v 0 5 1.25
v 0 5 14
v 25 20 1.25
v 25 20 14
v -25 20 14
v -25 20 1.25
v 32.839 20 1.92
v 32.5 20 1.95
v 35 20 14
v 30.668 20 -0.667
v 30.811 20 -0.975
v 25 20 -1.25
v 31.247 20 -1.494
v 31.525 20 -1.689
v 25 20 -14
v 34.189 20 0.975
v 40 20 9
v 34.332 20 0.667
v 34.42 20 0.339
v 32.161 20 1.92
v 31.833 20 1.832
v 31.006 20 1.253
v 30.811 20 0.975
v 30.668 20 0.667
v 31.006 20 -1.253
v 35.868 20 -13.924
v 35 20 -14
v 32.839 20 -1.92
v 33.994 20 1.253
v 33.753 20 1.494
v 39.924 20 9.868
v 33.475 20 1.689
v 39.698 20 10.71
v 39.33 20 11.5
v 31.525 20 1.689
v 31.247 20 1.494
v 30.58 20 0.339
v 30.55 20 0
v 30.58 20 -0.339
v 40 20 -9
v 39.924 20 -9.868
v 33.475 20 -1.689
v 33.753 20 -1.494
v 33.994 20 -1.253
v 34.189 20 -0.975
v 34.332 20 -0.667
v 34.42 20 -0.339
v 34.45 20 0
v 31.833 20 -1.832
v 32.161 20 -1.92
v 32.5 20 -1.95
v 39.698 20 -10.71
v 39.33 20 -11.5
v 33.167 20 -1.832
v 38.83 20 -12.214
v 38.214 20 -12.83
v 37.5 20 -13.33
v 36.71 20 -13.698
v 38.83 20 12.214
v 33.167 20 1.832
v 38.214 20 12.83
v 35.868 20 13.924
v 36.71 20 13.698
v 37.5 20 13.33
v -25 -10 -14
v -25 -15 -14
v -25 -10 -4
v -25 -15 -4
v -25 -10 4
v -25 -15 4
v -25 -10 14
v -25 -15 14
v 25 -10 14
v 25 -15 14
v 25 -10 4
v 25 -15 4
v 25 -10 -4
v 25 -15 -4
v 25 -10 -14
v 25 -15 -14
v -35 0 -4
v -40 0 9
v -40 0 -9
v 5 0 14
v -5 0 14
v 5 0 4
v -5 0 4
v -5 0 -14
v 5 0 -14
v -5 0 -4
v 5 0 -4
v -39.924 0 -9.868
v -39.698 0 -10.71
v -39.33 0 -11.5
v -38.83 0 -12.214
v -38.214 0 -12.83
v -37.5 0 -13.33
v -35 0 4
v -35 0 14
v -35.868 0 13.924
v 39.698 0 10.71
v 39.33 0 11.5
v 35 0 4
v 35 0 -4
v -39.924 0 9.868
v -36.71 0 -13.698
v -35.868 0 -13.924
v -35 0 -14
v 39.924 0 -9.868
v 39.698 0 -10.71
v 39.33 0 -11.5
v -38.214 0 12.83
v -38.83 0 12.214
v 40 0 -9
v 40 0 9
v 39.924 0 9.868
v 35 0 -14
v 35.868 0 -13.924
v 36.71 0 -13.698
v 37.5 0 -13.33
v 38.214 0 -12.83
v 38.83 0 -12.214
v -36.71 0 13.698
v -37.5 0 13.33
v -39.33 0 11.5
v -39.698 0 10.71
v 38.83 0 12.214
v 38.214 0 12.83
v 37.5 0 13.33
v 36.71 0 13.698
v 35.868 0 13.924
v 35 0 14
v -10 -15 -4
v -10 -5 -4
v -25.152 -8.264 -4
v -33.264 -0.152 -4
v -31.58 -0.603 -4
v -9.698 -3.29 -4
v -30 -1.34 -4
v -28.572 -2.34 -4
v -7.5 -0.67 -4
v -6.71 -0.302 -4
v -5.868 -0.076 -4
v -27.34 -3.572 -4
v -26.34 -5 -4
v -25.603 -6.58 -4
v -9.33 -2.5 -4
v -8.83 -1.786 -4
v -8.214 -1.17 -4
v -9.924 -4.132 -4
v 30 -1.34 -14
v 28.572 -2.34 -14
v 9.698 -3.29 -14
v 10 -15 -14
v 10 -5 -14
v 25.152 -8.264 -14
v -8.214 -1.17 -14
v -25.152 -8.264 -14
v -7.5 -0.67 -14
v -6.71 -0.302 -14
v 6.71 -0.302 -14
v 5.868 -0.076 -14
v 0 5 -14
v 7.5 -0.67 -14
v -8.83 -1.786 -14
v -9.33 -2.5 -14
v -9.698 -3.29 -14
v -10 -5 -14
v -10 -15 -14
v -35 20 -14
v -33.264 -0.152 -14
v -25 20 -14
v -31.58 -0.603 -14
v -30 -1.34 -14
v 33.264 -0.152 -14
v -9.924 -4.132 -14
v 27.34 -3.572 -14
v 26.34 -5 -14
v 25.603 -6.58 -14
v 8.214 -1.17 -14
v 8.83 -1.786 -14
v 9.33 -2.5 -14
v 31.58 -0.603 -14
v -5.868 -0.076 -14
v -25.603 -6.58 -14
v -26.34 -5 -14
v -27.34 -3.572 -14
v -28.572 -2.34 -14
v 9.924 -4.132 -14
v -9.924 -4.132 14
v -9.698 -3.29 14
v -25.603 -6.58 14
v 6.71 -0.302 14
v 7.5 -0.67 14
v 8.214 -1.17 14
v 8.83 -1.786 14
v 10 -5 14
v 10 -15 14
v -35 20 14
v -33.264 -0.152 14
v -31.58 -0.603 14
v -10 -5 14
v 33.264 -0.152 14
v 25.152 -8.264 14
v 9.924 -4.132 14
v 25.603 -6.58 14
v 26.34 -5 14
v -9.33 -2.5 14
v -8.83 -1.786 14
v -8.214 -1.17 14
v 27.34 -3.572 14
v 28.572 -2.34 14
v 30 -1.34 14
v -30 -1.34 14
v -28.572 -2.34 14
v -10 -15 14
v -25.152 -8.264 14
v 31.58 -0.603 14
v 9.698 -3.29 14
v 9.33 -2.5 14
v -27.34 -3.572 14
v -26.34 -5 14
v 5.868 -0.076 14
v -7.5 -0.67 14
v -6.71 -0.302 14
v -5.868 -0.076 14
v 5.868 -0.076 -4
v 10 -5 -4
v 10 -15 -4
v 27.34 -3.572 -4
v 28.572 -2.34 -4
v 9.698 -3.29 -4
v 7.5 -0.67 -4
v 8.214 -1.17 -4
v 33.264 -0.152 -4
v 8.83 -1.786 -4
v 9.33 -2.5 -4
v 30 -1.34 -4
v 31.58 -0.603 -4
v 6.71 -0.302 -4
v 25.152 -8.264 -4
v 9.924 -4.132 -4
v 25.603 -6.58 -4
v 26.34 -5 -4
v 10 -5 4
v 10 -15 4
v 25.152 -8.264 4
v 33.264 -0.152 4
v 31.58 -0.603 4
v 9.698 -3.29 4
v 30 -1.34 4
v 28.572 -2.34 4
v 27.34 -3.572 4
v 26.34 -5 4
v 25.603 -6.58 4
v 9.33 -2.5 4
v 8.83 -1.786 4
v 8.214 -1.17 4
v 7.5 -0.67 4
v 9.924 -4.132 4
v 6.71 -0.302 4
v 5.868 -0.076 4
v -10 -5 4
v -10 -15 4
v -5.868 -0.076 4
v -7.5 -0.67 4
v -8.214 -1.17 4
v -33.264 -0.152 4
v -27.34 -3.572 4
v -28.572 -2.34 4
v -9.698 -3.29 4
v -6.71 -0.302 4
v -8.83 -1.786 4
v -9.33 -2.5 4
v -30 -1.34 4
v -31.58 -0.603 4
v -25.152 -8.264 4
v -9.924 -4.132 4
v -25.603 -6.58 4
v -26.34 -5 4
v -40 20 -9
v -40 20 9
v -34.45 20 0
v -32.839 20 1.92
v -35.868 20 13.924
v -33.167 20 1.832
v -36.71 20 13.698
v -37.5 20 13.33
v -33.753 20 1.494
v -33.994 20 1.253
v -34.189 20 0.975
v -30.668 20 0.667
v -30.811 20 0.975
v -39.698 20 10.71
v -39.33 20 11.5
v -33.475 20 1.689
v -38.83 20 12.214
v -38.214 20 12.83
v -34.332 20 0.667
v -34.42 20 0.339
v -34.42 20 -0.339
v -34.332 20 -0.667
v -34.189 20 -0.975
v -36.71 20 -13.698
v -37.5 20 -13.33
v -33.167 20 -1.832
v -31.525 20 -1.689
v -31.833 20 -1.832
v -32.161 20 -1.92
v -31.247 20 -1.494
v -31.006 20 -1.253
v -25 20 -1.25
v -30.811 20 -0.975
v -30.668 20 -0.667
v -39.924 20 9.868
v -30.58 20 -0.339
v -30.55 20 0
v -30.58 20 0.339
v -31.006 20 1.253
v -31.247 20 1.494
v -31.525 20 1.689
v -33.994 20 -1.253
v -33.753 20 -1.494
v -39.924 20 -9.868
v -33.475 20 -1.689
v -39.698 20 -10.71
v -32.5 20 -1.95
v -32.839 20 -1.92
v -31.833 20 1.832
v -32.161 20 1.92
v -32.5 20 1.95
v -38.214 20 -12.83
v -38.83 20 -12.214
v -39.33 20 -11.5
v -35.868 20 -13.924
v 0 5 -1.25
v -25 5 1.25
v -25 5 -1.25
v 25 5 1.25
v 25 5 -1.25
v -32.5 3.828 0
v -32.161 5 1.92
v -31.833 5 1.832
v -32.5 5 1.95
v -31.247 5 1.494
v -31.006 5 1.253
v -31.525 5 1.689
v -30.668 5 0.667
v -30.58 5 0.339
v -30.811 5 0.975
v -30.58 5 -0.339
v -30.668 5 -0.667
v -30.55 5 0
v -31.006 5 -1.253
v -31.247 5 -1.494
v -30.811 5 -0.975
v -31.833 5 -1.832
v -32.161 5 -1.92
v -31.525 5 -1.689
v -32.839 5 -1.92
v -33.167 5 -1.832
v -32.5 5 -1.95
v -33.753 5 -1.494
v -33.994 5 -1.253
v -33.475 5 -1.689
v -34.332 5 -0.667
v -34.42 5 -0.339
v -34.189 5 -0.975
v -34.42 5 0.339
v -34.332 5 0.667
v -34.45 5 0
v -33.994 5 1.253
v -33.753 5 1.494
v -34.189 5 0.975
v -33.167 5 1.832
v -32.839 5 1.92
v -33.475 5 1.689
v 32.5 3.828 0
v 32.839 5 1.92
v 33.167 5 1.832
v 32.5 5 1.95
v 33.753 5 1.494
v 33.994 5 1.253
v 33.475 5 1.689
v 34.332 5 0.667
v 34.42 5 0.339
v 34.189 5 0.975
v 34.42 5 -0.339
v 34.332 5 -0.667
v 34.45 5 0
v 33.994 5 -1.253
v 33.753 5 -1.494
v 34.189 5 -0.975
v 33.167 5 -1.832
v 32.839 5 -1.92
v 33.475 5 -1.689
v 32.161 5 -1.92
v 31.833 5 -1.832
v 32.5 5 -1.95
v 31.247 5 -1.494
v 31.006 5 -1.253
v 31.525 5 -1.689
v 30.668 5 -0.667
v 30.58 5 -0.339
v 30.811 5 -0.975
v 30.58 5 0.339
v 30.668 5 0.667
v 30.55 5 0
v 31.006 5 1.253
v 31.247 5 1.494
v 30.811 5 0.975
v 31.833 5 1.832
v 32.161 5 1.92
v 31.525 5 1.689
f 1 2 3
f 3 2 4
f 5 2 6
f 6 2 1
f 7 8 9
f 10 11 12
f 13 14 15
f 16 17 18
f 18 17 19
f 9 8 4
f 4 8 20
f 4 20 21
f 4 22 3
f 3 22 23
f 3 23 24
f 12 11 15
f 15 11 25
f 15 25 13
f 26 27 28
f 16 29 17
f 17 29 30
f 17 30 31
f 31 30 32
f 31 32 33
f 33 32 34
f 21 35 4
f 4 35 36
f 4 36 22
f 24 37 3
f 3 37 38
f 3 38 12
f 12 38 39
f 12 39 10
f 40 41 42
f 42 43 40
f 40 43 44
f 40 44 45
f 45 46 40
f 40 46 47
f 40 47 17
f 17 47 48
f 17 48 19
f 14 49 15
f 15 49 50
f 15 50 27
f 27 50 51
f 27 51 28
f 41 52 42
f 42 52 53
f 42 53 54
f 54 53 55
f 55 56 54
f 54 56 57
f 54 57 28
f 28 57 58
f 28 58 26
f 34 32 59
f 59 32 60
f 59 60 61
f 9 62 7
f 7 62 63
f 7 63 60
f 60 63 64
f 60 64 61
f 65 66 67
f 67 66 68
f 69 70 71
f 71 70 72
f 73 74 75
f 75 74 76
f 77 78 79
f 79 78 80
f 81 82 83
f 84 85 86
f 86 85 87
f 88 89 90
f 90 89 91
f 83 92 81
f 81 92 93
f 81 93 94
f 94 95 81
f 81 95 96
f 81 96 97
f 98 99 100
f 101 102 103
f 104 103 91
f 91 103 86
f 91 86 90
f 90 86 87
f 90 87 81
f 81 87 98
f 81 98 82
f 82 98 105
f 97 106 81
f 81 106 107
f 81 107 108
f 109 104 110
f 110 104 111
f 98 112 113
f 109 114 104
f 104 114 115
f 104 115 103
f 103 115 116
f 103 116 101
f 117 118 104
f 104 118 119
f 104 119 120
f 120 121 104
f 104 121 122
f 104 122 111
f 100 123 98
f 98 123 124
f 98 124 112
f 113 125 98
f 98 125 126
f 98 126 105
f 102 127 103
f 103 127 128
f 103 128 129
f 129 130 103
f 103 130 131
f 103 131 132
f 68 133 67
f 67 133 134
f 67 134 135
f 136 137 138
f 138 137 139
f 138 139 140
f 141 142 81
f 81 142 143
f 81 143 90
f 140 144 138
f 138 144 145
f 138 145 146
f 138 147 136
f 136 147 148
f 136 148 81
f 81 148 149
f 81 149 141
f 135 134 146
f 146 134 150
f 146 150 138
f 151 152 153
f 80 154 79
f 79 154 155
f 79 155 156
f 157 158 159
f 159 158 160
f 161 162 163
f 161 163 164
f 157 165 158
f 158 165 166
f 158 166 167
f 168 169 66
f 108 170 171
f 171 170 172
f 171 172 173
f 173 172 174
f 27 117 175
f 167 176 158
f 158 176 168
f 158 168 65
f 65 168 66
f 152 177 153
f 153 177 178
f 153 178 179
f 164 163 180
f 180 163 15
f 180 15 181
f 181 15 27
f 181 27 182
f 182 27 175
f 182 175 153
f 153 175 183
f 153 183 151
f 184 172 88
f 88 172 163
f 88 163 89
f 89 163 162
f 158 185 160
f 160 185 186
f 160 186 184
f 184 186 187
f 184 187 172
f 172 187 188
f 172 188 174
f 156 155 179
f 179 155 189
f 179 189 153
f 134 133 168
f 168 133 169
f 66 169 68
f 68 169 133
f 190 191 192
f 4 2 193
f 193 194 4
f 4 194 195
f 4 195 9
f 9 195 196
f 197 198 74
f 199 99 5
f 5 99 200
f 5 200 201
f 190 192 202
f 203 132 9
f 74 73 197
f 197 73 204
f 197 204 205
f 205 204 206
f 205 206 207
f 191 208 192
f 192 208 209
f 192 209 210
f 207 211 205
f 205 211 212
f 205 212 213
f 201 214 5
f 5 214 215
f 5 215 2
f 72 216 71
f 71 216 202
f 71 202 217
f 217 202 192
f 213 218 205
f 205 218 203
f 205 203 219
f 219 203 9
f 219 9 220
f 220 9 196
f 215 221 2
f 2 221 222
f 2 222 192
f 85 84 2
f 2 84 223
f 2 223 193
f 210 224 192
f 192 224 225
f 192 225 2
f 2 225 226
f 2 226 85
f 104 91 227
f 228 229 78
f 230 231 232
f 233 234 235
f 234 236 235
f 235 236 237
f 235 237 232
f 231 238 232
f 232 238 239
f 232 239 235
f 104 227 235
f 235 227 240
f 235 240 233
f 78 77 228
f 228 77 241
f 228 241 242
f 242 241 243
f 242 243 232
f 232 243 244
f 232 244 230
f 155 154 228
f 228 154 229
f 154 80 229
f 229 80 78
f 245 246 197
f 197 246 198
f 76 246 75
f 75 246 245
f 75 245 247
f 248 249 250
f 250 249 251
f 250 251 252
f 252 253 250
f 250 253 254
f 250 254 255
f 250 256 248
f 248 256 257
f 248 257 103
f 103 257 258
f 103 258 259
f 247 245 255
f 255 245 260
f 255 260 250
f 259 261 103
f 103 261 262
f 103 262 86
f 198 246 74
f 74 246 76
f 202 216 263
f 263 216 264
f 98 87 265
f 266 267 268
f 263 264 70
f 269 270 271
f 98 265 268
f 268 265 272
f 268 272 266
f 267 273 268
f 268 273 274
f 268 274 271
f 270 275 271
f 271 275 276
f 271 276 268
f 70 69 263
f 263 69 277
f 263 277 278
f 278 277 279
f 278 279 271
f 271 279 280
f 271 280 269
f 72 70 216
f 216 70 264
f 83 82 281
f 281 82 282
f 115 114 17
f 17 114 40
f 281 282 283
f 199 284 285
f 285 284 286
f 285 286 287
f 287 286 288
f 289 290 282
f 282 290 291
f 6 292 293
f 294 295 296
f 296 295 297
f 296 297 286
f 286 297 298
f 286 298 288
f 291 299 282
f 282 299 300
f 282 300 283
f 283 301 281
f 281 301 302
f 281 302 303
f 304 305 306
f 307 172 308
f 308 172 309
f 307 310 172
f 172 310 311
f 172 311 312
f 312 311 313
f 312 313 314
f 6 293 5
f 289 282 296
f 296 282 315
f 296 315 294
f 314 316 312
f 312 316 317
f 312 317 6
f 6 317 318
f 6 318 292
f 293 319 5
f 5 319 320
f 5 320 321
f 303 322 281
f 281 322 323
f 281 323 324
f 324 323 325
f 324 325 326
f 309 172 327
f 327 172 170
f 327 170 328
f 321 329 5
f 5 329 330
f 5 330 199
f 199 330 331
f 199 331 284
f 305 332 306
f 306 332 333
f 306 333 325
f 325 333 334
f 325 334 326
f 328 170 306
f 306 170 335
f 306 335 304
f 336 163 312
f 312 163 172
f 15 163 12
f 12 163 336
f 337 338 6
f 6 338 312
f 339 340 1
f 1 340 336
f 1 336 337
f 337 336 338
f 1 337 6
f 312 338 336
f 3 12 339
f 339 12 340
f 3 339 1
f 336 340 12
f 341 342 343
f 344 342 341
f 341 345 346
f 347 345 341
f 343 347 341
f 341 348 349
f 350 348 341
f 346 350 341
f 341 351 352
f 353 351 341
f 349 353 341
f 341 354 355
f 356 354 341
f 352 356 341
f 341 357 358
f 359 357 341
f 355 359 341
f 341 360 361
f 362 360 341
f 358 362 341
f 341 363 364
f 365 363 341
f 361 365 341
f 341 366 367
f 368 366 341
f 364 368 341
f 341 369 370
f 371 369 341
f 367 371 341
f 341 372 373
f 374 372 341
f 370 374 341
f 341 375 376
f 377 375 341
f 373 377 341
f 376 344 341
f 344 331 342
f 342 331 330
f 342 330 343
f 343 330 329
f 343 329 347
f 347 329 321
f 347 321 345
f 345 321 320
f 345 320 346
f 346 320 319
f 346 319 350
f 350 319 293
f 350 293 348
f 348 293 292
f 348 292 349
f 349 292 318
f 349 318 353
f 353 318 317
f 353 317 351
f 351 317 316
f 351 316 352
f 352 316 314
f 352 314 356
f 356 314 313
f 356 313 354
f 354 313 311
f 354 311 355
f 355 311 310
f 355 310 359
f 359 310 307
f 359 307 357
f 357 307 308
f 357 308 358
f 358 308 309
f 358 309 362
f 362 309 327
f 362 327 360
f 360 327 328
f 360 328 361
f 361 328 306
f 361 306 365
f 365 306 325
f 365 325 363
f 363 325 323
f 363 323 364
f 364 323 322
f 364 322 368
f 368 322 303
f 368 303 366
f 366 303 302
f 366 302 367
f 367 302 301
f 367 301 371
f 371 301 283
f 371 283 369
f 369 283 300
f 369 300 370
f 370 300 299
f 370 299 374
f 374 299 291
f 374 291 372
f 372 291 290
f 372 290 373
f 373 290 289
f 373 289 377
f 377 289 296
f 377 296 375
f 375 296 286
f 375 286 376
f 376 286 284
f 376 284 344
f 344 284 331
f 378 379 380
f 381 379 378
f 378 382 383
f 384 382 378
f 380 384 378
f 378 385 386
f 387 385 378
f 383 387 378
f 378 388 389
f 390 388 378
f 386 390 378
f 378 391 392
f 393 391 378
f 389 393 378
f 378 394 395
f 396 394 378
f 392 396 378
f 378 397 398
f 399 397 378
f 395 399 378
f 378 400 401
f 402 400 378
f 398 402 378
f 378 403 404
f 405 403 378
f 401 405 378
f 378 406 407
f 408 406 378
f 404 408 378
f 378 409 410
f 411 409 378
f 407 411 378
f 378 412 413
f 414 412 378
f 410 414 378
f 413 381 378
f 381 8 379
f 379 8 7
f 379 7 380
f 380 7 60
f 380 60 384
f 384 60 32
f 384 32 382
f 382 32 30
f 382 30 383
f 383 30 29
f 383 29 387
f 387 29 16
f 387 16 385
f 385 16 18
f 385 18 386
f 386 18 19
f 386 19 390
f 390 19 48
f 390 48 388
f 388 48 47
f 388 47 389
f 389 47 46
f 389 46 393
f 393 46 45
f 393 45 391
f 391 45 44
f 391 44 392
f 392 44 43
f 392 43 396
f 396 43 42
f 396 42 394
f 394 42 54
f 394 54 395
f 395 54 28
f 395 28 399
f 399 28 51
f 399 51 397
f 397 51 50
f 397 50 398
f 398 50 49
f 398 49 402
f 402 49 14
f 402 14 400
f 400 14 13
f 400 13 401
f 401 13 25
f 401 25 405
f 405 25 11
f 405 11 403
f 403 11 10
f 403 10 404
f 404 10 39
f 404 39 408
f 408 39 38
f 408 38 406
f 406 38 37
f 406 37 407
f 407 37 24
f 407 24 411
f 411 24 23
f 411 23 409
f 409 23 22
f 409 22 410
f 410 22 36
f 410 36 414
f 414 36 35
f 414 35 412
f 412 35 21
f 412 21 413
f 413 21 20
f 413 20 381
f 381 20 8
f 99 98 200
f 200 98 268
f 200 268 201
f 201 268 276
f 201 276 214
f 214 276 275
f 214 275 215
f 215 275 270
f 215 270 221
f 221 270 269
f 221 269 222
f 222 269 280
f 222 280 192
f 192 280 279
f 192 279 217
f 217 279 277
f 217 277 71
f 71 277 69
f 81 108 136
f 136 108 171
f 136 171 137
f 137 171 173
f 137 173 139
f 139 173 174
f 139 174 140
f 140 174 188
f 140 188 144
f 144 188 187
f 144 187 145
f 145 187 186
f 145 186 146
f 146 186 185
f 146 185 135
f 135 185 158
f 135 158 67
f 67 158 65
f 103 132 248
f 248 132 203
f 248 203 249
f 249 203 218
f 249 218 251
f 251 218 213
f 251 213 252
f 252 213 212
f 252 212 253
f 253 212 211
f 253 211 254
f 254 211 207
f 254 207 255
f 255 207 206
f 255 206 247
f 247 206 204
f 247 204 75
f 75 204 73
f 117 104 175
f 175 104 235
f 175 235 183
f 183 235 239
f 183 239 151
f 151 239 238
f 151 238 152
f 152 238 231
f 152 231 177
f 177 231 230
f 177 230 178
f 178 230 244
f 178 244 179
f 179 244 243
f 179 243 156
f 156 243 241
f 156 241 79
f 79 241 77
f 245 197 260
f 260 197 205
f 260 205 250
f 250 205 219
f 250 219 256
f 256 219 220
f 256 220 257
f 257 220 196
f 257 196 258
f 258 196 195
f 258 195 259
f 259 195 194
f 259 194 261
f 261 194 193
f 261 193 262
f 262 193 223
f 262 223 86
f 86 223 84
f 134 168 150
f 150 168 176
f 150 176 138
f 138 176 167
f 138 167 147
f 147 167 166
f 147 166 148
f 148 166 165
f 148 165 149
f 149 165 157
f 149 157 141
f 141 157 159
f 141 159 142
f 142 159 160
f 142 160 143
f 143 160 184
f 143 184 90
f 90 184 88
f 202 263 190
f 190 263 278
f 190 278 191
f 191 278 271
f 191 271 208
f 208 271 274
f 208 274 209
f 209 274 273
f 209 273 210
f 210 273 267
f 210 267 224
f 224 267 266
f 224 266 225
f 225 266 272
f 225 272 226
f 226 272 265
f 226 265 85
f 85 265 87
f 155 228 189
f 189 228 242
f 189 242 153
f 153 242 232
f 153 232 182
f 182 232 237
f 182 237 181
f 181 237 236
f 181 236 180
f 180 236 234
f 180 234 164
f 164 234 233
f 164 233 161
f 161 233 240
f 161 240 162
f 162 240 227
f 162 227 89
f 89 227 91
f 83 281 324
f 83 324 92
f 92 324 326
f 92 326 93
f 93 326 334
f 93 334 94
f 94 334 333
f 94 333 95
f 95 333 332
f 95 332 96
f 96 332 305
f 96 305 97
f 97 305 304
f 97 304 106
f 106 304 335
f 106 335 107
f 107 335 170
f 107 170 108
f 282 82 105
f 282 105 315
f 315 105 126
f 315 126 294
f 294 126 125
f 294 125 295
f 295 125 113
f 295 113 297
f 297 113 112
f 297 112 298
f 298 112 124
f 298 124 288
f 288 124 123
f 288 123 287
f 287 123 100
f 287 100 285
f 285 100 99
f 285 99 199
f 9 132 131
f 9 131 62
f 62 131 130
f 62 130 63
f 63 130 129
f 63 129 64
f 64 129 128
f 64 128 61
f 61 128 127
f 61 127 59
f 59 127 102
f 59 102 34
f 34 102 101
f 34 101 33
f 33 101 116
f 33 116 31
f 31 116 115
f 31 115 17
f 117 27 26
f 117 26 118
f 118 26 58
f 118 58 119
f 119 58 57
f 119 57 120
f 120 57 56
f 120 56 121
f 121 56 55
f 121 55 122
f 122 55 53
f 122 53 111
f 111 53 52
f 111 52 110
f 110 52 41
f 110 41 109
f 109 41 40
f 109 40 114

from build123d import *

# Parameters (mm, degrees)
SKETCH1_W                  = 15
SKETCH1_H                  = 10
BOSS_EXTRUDE1_DEPTH        = 15
BOSS_EXTRUDE1_2_DEPTH      = 15
BOSS_EXTRUDE1_3_DEPTH      = 15
BOSS_EXTRUDE1_4_DEPTH      = 15
SKETCH2_W                  = 50
SKETCH2_H                  = 28
BOSS_EXTRUDE2_DEPTH        = 5
SKETCH4_W                  = 80
SKETCH4_H                  = 28
BOSS_EXTRUDE3_DEPTH        = 20
CUT_EXTRUDE1_DEPTH         = 20
CUT_EXTRUDE1_DEPTH_BACK    = 20
CUT_EXTRUDE2_DEPTH         = 1.25
M3_5_CLEARANCE_HOLE1_D     = 3.9
M3_5_CLEARANCE_HOLE1_DEPTH = 15
M3_5_CLEARANCE_HOLE1_TIP   = 1.171678207
FILLET1_R                  = 10
FILLET2_R                  = 5
FILLET3_R                  = 5


with BuildPart() as part:
    # Sketch1 → Boss-Extrude1 (new body)
    with BuildSketch(Plane(origin=(0, 0, 0), x_dir=(1, 0, 0), z_dir=(0, 1, 0))):
        with Locations((-17.5, 9)):
            Rectangle(SKETCH1_W, SKETCH1_H)
    extrude(amount=-BOSS_EXTRUDE1_DEPTH)



with BuildPart() as body_2:
    # Sketch1 → Boss-Extrude1 2 (new body)
    with BuildSketch(Plane(origin=(0, 0, 0), x_dir=(1, 0, 0), z_dir=(0, 1, 0))):
        with Locations((17.5, 9)):
            Rectangle(SKETCH1_W, SKETCH1_H)
    extrude(amount=-BOSS_EXTRUDE1_2_DEPTH)


with BuildPart() as body_3:
    # Sketch1 → Boss-Extrude1 3 (new body)
    with BuildSketch(Plane(origin=(0, 0, 0), x_dir=(1, 0, 0), z_dir=(0, 1, 0))):
        with Locations((17.5, -9)):
            Rectangle(SKETCH1_W, SKETCH1_H)
    extrude(amount=-BOSS_EXTRUDE1_3_DEPTH)


with BuildPart() as body_4:
    # Sketch1 → Boss-Extrude1 4 (new body)
    with BuildSketch(Plane(origin=(0, 0, 0), x_dir=(1, 0, 0), z_dir=(0, 1, 0))):
        with Locations((-17.5, -9)):
            Rectangle(SKETCH1_W, SKETCH1_H)
    extrude(amount=-BOSS_EXTRUDE1_4_DEPTH)


with BuildPart() as part_1:
    add(part.part)

    add(body_2.part)  # Boss-Extrude2 merges body 2

    add(body_3.part)  # Boss-Extrude2 merges body 3

    add(body_4.part)  # Boss-Extrude2 merges body 4
    # Sketch2 → Boss-Extrude2 (add)
    with BuildSketch(Plane(origin=(0, 0, 0), x_dir=(1, 0, 0), z_dir=(0, 1, 0))):
        Rectangle(SKETCH2_W, SKETCH2_H)
    extrude(amount=BOSS_EXTRUDE2_DEPTH)

    # Sketch4 → Boss-Extrude3 (add)
    with BuildSketch(Plane(origin=(0, 0, 0), x_dir=(1, 0, 0), z_dir=(0, 1, 0))):
        Rectangle(SKETCH4_W, SKETCH4_H)
    extrude(amount=BOSS_EXTRUDE3_DEPTH)

    # Sketch5 → Cut-Extrude1 (cut, two sides: drawn at the far end of the back side and taken through both)
    with BuildSketch(Plane.XY.offset(-CUT_EXTRUDE1_DEPTH_BACK)):
        Polygon((-25, 20), (25, 20), (0, 5), align=None)
    extrude(amount=CUT_EXTRUDE1_DEPTH + CUT_EXTRUDE1_DEPTH_BACK, mode=Mode.SUBTRACT)

    # Sketch6 → Cut-Extrude2 (cut, symmetric)
    with BuildSketch(Plane.XY):
        Polygon((-25, 20), (-25, 5), (0, 5), align=None)
    cut_extrude2 = extrude(amount=CUT_EXTRUDE2_DEPTH, both=True, mode=Mode.SUBTRACT)

    # Mirror1: Cut-Extrude2 across plane
    add(cut_extrude2.mirror(Plane(origin=(0, 0, 0), x_dir=(0, 0, 1), z_dir=(1, 0, 0))), mode=Mode.SUBTRACT)

    # M3.5 Clearance Hole1
    with Locations(Plane(origin=(0, 20, 0), x_dir=(1, 0, 0), z_dir=(0, 1, 0))):
        with Locations((32.5, 0), (-32.5, 0)):
            Hole(M3_5_CLEARANCE_HOLE1_D / 2, depth=M3_5_CLEARANCE_HOLE1_DEPTH)
            with Locations((0, 0, -(M3_5_CLEARANCE_HOLE1_DEPTH + M3_5_CLEARANCE_HOLE1_TIP / 2))):  # 118° drill point
                Cone(0, M3_5_CLEARANCE_HOLE1_D / 2, M3_5_CLEARANCE_HOLE1_TIP, mode=Mode.SUBTRACT)

    # Fillet1
    fillet1_edges = [part_1.edges().sort_by_distance(p)[0] for p in [
        (-25, 0, -9),
        (-25, 0, 9),
        (25, 0, 9),
        (25, 0, -9),
    ]]
    fillet(fillet1_edges, radius=FILLET1_R)

    # Fillet2
    fillet2_edges = [part_1.edges().sort_by_distance(p)[0] for p in [
        (10, 0, -9),
        (10, 0, 9),
        (-10, 0, 9),
        (-10, 0, -9),
    ]]
    fillet(fillet2_edges, radius=FILLET2_R)

    # Fillet3
    fillet3_edges = [part_1.edges().sort_by_distance(p)[0] for p in [
        (-40, 10, -14),
        (-40, 10, 14),
        (40, 10, 14),
        (40, 10, -14),
    ]]
    fillet(fillet3_edges, radius=FILLET3_R)


solid = part_1.part
